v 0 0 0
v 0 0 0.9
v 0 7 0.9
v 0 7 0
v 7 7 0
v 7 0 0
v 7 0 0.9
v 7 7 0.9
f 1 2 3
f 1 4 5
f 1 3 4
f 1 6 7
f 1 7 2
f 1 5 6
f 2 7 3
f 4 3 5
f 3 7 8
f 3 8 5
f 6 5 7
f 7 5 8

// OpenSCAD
/* Warning, this is a very basic generator with a lot of approximation 
input data : [VQFN, KFX, 7x7x0.9mm, 48, , A, C04-00447A]
generated by com.zoubworld.electronics.cad.model3d.Basic
Date : Sun Feb 15 10:50:48 CET 2026
*/

//body
color("black")
translate([0,0,0])
cube([7.0,7.0,0.9], center=false);
